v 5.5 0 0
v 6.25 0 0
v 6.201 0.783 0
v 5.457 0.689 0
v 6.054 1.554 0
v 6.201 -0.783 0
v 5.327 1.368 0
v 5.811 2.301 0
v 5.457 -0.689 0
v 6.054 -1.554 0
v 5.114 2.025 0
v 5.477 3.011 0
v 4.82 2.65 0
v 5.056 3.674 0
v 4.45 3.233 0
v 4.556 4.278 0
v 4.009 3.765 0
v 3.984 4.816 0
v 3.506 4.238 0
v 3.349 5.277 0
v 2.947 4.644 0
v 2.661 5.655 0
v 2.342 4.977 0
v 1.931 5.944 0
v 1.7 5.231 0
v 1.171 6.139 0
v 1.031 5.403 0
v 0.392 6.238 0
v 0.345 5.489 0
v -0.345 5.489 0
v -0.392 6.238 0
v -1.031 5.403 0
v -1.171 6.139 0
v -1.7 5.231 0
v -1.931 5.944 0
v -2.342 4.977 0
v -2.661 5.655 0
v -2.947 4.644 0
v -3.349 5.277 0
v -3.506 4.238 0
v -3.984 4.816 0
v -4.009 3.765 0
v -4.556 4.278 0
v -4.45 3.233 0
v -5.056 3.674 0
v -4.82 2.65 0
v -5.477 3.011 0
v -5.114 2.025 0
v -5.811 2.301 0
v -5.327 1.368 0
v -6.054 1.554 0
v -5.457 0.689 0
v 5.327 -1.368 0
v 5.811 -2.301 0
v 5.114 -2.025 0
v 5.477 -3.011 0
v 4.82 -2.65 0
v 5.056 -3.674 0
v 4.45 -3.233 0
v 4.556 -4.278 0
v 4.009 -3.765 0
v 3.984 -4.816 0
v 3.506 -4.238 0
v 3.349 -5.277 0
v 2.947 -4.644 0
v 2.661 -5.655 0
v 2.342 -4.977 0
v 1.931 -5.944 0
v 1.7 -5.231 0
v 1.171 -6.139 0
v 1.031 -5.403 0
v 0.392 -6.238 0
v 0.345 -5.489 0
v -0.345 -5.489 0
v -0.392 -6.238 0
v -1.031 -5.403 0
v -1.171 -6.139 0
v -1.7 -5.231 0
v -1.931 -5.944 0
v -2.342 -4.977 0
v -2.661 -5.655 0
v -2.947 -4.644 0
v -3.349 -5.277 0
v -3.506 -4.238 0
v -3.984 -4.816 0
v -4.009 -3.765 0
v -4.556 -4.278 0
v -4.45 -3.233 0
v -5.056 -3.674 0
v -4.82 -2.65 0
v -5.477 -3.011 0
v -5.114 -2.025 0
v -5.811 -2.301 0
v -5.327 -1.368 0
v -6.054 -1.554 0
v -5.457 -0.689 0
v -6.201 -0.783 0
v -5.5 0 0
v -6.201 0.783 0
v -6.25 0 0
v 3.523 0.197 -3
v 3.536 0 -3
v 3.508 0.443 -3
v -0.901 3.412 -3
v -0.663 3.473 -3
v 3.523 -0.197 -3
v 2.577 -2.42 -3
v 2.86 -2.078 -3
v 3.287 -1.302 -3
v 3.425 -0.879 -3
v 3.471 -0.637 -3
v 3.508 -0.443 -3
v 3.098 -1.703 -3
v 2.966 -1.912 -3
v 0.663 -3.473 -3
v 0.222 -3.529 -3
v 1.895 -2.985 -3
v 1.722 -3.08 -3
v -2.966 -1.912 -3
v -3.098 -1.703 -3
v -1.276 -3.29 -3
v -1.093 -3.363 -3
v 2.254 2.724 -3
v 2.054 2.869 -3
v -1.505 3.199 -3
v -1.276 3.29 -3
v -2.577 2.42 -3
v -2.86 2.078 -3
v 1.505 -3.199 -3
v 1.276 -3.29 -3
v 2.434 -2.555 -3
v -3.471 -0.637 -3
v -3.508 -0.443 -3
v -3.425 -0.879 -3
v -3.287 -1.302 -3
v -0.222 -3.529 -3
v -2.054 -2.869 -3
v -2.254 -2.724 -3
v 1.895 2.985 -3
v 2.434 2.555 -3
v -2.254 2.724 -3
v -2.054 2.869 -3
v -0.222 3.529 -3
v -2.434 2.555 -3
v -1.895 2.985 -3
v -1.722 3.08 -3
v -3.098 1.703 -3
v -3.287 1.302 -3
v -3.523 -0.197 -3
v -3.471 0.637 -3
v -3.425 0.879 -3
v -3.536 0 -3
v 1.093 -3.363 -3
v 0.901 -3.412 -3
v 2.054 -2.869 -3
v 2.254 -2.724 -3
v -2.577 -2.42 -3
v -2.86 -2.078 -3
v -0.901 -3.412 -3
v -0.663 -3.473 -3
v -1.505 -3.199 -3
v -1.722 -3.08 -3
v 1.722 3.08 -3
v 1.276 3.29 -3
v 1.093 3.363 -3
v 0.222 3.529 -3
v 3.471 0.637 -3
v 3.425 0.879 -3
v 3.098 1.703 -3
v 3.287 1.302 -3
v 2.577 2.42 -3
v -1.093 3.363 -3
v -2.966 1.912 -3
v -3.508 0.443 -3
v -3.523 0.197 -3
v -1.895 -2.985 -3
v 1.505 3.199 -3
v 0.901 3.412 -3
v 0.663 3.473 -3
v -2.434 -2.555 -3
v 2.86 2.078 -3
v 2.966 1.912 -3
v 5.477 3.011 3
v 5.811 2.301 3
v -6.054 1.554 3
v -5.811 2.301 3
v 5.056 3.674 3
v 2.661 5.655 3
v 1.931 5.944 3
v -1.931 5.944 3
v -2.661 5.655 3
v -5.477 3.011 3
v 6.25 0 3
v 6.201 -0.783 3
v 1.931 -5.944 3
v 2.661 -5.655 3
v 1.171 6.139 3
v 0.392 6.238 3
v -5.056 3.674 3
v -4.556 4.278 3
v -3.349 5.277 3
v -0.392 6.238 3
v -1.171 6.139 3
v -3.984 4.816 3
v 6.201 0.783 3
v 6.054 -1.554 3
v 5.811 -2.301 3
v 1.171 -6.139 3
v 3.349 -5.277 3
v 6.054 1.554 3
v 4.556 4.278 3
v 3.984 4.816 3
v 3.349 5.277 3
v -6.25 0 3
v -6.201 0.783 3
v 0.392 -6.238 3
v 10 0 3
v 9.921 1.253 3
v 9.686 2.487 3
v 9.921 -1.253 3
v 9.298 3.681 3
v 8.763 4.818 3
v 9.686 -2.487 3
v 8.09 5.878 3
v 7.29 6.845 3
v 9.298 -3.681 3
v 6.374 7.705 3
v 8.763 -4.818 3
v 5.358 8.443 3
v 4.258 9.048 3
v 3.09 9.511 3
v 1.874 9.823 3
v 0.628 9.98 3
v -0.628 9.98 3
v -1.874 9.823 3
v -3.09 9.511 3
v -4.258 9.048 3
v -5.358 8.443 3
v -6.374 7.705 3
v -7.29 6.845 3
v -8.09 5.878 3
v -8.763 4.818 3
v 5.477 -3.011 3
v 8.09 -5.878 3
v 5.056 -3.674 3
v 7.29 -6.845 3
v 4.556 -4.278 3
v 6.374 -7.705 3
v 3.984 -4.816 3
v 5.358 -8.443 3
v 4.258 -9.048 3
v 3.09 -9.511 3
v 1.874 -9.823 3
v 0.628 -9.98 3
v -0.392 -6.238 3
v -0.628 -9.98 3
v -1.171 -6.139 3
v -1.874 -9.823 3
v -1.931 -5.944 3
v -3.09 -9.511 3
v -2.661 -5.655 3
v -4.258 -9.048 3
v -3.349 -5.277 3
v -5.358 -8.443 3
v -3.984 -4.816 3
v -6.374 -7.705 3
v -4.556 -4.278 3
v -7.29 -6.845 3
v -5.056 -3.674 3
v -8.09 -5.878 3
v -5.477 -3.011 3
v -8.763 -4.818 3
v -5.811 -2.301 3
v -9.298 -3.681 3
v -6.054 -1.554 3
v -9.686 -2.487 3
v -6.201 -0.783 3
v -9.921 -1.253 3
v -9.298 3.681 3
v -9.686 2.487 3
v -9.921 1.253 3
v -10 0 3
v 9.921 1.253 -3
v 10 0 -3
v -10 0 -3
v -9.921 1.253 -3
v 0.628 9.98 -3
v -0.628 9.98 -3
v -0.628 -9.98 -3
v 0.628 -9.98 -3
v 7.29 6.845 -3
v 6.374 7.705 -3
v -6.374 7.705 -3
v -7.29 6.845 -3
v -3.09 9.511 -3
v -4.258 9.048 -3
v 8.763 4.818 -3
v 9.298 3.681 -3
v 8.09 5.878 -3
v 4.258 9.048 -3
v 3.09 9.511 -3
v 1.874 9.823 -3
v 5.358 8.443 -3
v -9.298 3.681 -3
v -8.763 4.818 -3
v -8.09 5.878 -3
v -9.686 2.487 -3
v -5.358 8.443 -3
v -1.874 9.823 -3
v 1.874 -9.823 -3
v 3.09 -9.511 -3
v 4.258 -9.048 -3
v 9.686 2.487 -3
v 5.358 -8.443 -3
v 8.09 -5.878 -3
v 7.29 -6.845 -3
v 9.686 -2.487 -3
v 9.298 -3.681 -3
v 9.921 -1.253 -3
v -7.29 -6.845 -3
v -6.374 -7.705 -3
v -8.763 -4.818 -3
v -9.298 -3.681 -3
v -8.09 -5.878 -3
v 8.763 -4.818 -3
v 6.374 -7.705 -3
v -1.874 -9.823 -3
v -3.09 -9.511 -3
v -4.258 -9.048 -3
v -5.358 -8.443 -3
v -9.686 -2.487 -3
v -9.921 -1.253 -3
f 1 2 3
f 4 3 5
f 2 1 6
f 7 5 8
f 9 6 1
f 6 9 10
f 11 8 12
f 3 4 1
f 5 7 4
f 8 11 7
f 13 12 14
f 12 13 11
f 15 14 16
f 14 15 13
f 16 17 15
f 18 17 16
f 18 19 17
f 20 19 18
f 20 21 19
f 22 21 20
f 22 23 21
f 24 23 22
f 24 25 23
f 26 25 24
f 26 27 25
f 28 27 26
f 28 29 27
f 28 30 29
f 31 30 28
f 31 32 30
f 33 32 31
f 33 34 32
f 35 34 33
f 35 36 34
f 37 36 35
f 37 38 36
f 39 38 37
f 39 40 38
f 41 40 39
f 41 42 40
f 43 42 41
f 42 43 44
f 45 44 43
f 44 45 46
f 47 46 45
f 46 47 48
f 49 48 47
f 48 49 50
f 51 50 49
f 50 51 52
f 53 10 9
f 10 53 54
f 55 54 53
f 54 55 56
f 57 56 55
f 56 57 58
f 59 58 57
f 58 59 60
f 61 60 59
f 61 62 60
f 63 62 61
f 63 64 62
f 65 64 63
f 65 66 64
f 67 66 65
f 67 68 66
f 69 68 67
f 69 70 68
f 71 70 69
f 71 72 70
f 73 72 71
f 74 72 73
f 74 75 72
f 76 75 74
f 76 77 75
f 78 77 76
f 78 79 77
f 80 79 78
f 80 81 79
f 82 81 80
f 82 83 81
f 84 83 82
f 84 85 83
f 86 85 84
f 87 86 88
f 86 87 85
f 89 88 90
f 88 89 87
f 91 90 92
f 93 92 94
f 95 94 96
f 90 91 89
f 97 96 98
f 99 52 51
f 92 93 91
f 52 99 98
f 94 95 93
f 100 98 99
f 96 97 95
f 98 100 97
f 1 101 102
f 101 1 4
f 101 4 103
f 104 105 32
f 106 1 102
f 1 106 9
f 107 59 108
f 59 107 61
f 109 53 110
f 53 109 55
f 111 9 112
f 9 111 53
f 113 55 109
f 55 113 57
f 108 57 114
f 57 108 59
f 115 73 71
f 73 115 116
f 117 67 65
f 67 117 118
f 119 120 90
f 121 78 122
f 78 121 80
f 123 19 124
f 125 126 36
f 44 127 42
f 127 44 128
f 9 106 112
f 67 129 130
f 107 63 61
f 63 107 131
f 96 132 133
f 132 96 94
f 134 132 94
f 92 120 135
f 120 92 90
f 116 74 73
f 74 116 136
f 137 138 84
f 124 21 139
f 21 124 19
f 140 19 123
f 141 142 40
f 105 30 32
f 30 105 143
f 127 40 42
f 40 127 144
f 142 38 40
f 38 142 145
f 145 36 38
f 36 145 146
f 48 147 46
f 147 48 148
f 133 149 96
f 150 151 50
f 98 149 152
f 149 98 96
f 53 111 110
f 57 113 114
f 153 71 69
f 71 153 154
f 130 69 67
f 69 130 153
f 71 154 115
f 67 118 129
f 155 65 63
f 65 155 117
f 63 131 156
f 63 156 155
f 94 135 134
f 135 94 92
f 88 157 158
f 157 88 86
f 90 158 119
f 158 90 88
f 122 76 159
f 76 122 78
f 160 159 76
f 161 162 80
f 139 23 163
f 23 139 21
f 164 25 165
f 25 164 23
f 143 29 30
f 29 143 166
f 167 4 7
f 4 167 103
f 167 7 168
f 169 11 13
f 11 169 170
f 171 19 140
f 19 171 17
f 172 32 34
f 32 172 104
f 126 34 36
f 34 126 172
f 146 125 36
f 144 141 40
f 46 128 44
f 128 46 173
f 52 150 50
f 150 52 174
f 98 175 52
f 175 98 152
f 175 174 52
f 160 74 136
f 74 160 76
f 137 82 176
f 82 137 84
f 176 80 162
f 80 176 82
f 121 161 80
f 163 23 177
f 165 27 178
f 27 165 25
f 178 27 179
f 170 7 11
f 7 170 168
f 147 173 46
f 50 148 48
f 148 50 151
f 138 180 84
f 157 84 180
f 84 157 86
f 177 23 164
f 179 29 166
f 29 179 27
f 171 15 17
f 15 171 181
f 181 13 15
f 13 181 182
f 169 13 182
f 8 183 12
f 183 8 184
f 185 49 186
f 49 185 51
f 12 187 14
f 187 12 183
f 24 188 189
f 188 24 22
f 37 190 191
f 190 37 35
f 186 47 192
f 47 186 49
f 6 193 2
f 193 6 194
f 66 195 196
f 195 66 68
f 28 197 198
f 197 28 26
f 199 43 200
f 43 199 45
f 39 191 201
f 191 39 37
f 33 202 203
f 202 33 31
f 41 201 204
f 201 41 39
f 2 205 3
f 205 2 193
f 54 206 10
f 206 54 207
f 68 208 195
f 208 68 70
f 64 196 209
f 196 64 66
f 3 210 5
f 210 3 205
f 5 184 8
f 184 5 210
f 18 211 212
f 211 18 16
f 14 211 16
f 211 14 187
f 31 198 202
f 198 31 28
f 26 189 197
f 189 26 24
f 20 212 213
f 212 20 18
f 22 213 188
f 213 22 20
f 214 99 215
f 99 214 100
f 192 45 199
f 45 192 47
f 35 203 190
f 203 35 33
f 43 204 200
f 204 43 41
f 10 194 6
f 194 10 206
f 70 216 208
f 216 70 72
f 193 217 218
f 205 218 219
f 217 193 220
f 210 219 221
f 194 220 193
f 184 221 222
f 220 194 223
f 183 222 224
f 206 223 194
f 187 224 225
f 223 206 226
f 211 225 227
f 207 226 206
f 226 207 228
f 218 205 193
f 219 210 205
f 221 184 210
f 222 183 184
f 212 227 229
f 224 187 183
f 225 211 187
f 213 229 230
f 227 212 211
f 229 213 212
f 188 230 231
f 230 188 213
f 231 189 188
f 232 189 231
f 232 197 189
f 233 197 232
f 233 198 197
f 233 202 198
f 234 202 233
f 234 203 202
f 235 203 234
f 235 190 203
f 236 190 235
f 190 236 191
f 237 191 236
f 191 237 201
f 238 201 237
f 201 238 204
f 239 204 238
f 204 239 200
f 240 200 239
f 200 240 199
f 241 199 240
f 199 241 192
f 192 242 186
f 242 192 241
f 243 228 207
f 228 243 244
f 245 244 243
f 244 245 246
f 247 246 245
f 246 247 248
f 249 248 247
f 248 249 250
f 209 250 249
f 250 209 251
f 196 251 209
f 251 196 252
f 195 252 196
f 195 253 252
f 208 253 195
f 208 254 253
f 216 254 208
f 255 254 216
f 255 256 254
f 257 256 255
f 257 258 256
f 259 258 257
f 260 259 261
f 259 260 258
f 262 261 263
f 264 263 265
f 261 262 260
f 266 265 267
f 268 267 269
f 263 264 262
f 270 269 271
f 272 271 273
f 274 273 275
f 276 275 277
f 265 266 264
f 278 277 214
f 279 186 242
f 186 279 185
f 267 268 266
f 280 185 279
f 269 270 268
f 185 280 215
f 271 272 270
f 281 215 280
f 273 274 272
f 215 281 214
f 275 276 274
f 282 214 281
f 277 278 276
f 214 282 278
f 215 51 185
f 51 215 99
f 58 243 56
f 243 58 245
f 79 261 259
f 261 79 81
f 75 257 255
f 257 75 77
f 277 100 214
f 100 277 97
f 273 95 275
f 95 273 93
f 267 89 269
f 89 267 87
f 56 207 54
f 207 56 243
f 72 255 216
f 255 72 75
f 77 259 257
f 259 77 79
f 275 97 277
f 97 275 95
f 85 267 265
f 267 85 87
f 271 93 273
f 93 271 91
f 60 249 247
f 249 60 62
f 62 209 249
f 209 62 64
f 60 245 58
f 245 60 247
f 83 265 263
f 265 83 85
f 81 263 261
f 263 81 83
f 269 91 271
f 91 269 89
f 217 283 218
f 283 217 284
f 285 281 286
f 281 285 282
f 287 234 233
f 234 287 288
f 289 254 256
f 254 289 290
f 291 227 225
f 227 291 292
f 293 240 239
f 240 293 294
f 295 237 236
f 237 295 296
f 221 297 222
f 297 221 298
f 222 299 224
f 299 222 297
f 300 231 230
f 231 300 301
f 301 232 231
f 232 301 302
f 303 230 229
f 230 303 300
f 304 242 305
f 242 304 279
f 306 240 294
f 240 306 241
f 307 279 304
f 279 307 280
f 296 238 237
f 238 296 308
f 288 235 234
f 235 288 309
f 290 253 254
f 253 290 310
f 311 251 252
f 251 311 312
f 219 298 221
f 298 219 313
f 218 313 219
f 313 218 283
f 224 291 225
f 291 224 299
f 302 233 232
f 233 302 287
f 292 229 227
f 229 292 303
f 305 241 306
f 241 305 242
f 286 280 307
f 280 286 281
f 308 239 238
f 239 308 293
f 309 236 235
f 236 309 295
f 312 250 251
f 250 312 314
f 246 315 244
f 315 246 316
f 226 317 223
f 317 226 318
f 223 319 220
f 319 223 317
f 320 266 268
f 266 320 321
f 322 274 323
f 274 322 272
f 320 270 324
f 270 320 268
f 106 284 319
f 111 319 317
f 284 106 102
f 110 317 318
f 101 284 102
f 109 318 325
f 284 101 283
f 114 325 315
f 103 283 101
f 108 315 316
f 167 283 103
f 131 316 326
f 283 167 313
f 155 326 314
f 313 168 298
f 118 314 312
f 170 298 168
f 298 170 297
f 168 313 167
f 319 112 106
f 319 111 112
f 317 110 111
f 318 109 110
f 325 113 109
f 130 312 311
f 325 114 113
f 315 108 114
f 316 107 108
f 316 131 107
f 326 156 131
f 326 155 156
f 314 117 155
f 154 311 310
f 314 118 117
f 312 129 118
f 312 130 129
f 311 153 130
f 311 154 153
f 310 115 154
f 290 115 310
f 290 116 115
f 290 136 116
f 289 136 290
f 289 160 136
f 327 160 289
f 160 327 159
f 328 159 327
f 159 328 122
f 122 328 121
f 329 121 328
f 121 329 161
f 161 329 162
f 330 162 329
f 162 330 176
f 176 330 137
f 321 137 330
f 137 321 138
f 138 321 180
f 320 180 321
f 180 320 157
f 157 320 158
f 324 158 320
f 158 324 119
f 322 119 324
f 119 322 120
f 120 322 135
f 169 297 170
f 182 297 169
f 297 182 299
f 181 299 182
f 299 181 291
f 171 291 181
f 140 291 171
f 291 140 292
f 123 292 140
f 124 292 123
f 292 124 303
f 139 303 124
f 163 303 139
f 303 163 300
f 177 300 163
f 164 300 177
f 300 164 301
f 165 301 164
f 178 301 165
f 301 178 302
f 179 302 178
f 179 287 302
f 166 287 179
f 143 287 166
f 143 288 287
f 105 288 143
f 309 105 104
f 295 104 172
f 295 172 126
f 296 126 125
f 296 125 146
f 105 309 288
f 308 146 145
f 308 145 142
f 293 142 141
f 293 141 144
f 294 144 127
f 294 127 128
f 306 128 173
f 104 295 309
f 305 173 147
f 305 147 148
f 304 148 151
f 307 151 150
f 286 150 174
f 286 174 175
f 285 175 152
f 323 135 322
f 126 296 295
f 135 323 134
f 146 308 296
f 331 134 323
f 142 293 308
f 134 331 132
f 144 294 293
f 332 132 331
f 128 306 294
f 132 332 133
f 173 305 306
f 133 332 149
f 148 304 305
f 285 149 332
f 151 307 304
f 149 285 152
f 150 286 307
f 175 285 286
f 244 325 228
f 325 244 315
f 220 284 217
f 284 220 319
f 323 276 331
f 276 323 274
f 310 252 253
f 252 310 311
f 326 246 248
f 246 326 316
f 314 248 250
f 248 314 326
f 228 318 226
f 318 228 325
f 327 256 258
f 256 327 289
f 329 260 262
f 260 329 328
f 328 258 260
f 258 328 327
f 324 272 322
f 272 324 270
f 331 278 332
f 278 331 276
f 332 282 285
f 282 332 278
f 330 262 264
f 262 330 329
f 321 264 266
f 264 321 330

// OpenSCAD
$fn = 50;


difference() {
	union() {
		translate(v = [0, 0, -3.0000000000]) {
			cylinder(h = 6, r = 10.0000000000);
		}
	}
	union() {
		translate(v = [0, 0, 0]) {
			rotate(a = [0, 0, 0]) {
				difference() {
					union() {
						translate(v = [0, 0, -6.0000000000]) {
							cylinder(h = 6, r = 2.2500000000);
						}
						translate(v = [0, 0, -4.2000000000]) {
							cylinder(h = 4.2000000000, r1 = 2.7500000000, r2 = 5.5000000000);
						}
						translate(v = [0, 0, -6.0000000000]) {
							cylinder(h = 6, r = 2.7500000000);
						}
						translate(v = [0, 0, -6.0000000000]) {
							cylinder(h = 6, r = 2.2500000000);
						}
					}
					union();
				}
			}
		}
		#cylinder(h = 3, r = 6.2500000000);
	}
}
